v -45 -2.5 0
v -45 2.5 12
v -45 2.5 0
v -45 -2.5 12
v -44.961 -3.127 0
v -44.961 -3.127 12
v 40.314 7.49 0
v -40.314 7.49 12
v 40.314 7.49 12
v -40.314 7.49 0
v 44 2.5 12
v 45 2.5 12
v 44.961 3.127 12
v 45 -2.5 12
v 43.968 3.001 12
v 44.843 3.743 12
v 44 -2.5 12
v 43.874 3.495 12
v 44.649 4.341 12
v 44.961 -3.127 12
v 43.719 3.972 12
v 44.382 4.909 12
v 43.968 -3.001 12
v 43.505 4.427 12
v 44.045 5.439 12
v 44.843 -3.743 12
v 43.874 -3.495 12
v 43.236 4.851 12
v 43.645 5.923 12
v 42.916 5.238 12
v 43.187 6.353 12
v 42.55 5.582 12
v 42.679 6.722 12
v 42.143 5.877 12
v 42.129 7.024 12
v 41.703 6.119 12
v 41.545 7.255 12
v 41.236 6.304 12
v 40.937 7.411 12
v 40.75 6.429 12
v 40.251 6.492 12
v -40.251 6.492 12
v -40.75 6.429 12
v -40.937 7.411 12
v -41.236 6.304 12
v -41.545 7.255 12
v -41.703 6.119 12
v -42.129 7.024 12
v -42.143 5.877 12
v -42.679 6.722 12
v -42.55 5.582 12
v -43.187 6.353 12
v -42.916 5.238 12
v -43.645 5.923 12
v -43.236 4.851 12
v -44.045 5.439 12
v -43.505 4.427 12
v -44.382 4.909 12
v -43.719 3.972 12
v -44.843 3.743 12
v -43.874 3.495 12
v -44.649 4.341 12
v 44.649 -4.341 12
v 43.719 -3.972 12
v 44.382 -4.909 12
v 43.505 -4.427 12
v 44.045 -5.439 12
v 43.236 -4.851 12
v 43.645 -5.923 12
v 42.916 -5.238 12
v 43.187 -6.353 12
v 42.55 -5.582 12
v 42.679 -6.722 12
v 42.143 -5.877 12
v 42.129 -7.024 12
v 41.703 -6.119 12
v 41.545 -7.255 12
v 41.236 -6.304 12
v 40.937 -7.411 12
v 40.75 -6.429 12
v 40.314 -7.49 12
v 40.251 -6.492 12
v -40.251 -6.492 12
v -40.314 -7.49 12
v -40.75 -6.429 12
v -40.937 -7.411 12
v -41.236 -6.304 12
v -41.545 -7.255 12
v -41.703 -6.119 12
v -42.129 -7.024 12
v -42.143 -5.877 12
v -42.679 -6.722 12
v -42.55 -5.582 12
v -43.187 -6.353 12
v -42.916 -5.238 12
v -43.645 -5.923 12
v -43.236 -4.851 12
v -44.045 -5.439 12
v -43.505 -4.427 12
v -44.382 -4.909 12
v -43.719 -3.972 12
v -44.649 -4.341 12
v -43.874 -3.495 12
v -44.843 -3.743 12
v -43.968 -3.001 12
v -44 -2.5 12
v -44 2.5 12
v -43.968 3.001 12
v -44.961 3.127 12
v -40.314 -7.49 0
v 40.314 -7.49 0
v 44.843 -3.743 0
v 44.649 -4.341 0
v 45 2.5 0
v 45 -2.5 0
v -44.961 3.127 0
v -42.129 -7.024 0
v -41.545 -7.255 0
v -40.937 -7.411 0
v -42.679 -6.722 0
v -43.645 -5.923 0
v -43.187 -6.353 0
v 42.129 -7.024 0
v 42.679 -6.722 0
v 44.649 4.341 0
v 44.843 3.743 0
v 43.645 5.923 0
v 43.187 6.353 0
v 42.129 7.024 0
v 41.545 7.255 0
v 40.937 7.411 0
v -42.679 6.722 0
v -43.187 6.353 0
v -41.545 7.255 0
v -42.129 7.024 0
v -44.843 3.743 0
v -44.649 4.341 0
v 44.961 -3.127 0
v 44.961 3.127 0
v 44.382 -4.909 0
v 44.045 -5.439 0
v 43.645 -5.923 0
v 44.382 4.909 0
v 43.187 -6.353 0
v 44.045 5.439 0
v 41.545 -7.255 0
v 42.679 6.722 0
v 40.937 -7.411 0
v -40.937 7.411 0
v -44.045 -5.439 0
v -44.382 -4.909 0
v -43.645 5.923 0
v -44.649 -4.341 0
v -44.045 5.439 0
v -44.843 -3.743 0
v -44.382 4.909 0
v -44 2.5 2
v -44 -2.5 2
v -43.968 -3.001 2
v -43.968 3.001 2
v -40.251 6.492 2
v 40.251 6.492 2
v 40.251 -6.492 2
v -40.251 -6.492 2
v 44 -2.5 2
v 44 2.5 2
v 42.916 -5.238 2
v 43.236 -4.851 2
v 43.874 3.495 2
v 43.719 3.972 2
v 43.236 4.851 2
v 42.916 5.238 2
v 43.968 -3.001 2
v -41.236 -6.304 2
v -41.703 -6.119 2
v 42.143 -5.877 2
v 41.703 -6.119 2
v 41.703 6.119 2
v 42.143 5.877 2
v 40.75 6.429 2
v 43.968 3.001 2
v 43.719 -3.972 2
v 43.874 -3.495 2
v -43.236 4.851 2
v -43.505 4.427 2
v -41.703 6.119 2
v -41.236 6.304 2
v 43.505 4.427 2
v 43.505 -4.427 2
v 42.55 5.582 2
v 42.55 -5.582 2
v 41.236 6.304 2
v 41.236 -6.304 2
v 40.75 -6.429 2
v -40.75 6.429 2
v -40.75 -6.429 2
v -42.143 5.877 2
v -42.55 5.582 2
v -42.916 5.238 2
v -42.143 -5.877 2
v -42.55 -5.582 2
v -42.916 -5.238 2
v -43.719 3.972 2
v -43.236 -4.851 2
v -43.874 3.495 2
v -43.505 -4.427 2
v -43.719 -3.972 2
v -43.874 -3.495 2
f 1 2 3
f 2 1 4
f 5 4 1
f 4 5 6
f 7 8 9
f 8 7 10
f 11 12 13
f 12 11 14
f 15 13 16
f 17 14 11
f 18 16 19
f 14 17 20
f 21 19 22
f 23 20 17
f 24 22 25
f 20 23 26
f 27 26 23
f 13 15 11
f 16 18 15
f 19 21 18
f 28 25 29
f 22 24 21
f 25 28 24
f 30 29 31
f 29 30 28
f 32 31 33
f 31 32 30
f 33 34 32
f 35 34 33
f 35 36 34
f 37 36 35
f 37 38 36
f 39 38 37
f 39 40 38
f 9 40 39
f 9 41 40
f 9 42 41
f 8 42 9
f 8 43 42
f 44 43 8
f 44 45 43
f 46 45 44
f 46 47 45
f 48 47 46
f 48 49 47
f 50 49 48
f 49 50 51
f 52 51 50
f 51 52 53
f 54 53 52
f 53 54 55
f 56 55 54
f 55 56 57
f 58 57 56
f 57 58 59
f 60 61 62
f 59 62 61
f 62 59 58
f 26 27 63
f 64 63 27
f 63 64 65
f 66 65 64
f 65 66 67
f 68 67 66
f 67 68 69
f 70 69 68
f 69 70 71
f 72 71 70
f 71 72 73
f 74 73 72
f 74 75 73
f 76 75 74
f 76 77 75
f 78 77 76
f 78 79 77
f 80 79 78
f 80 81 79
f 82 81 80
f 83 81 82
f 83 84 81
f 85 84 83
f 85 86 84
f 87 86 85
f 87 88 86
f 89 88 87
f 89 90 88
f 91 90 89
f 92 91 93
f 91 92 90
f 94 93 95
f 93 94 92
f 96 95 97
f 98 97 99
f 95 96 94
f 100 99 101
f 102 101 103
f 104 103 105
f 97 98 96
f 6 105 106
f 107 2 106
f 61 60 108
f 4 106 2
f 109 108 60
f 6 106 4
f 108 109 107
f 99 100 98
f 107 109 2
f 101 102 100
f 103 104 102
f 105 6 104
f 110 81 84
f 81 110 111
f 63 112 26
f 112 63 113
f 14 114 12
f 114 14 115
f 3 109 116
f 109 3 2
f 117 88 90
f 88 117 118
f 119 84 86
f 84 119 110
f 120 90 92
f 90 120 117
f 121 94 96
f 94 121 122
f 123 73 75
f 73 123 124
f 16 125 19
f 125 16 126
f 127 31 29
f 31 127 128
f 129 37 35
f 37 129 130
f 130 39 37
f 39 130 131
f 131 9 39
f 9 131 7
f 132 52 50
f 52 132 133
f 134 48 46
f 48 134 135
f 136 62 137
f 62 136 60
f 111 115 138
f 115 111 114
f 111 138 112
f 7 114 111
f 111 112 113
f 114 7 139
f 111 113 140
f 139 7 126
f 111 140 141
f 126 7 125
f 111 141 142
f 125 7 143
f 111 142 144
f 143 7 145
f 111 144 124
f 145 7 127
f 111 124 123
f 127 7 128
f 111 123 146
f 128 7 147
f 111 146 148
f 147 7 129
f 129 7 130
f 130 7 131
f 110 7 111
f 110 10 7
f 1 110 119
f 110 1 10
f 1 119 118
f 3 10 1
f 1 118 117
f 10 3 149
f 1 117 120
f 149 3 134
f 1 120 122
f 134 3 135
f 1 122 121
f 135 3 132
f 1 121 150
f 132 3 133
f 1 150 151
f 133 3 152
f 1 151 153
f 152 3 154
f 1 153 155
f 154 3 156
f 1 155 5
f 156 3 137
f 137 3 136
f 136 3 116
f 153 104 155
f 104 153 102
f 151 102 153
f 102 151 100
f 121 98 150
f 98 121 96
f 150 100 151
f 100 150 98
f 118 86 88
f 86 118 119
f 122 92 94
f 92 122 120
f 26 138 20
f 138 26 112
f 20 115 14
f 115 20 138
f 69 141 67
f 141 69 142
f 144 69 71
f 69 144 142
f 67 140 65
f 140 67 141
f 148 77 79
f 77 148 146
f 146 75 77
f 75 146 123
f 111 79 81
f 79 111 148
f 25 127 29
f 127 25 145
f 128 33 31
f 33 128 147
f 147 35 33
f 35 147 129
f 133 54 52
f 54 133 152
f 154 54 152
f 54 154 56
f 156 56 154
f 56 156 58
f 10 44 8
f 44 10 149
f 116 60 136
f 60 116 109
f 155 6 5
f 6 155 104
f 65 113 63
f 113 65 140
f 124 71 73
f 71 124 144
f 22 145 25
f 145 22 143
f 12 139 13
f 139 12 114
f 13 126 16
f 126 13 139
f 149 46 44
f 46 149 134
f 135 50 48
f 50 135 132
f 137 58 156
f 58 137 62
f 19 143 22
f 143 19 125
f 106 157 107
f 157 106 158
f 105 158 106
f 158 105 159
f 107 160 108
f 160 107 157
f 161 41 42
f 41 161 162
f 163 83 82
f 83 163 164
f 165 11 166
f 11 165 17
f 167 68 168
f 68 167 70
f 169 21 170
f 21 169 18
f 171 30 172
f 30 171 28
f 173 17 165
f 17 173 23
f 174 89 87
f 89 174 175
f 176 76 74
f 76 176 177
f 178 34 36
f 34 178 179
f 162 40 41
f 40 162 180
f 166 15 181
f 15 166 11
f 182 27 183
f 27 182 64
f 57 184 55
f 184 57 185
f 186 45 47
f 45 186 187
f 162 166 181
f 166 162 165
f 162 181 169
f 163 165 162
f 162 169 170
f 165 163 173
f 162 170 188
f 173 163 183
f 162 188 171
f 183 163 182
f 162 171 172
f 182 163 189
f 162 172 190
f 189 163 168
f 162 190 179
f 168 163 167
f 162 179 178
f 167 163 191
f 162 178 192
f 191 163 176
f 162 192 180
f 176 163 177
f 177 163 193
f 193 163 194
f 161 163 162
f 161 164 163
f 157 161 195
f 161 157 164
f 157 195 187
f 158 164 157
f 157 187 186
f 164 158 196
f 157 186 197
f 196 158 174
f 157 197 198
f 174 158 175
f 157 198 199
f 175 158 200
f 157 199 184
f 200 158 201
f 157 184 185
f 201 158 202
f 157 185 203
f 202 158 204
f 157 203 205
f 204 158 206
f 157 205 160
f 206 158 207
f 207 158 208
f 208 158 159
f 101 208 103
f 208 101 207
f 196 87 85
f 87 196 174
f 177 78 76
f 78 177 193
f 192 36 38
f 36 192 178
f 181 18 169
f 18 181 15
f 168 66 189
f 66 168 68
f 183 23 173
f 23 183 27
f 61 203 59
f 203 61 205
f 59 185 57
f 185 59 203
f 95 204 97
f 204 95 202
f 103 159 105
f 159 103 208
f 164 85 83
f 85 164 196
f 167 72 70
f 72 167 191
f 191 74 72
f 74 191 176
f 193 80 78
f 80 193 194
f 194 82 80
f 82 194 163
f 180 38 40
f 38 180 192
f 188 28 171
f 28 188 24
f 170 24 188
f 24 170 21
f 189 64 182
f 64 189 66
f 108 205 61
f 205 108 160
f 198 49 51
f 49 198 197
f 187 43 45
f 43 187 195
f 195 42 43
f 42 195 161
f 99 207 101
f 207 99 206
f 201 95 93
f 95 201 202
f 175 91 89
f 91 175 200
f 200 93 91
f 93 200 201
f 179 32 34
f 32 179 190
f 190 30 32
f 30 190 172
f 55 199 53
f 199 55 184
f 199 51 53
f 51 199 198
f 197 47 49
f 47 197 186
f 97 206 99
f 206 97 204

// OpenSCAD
$fn = 50;


difference() {
	union() {
		hull() {
			translate(v = [-40.0000000000, 2.5000000000, 0]) {
				cylinder(h = 12, r = 5);
			}
			translate(v = [40.0000000000, 2.5000000000, 0]) {
				cylinder(h = 12, r = 5);
			}
			translate(v = [-40.0000000000, -2.5000000000, 0]) {
				cylinder(h = 12, r = 5);
			}
			translate(v = [40.0000000000, -2.5000000000, 0]) {
				cylinder(h = 12, r = 5);
			}
		}
	}
	union() {
		translate(v = [0, 0, 2]) {
			hull() {
				translate(v = [-40.0000000000, 2.5000000000, 0]) {
					cylinder(h = 10, r = 4);
				}
				translate(v = [40.0000000000, 2.5000000000, 0]) {
					cylinder(h = 10, r = 4);
				}
				translate(v = [-40.0000000000, -2.5000000000, 0]) {
					cylinder(h = 10, r = 4);
				}
				translate(v = [40.0000000000, -2.5000000000, 0]) {
					cylinder(h = 10, r = 4);
				}
			}
		}
	}
}
